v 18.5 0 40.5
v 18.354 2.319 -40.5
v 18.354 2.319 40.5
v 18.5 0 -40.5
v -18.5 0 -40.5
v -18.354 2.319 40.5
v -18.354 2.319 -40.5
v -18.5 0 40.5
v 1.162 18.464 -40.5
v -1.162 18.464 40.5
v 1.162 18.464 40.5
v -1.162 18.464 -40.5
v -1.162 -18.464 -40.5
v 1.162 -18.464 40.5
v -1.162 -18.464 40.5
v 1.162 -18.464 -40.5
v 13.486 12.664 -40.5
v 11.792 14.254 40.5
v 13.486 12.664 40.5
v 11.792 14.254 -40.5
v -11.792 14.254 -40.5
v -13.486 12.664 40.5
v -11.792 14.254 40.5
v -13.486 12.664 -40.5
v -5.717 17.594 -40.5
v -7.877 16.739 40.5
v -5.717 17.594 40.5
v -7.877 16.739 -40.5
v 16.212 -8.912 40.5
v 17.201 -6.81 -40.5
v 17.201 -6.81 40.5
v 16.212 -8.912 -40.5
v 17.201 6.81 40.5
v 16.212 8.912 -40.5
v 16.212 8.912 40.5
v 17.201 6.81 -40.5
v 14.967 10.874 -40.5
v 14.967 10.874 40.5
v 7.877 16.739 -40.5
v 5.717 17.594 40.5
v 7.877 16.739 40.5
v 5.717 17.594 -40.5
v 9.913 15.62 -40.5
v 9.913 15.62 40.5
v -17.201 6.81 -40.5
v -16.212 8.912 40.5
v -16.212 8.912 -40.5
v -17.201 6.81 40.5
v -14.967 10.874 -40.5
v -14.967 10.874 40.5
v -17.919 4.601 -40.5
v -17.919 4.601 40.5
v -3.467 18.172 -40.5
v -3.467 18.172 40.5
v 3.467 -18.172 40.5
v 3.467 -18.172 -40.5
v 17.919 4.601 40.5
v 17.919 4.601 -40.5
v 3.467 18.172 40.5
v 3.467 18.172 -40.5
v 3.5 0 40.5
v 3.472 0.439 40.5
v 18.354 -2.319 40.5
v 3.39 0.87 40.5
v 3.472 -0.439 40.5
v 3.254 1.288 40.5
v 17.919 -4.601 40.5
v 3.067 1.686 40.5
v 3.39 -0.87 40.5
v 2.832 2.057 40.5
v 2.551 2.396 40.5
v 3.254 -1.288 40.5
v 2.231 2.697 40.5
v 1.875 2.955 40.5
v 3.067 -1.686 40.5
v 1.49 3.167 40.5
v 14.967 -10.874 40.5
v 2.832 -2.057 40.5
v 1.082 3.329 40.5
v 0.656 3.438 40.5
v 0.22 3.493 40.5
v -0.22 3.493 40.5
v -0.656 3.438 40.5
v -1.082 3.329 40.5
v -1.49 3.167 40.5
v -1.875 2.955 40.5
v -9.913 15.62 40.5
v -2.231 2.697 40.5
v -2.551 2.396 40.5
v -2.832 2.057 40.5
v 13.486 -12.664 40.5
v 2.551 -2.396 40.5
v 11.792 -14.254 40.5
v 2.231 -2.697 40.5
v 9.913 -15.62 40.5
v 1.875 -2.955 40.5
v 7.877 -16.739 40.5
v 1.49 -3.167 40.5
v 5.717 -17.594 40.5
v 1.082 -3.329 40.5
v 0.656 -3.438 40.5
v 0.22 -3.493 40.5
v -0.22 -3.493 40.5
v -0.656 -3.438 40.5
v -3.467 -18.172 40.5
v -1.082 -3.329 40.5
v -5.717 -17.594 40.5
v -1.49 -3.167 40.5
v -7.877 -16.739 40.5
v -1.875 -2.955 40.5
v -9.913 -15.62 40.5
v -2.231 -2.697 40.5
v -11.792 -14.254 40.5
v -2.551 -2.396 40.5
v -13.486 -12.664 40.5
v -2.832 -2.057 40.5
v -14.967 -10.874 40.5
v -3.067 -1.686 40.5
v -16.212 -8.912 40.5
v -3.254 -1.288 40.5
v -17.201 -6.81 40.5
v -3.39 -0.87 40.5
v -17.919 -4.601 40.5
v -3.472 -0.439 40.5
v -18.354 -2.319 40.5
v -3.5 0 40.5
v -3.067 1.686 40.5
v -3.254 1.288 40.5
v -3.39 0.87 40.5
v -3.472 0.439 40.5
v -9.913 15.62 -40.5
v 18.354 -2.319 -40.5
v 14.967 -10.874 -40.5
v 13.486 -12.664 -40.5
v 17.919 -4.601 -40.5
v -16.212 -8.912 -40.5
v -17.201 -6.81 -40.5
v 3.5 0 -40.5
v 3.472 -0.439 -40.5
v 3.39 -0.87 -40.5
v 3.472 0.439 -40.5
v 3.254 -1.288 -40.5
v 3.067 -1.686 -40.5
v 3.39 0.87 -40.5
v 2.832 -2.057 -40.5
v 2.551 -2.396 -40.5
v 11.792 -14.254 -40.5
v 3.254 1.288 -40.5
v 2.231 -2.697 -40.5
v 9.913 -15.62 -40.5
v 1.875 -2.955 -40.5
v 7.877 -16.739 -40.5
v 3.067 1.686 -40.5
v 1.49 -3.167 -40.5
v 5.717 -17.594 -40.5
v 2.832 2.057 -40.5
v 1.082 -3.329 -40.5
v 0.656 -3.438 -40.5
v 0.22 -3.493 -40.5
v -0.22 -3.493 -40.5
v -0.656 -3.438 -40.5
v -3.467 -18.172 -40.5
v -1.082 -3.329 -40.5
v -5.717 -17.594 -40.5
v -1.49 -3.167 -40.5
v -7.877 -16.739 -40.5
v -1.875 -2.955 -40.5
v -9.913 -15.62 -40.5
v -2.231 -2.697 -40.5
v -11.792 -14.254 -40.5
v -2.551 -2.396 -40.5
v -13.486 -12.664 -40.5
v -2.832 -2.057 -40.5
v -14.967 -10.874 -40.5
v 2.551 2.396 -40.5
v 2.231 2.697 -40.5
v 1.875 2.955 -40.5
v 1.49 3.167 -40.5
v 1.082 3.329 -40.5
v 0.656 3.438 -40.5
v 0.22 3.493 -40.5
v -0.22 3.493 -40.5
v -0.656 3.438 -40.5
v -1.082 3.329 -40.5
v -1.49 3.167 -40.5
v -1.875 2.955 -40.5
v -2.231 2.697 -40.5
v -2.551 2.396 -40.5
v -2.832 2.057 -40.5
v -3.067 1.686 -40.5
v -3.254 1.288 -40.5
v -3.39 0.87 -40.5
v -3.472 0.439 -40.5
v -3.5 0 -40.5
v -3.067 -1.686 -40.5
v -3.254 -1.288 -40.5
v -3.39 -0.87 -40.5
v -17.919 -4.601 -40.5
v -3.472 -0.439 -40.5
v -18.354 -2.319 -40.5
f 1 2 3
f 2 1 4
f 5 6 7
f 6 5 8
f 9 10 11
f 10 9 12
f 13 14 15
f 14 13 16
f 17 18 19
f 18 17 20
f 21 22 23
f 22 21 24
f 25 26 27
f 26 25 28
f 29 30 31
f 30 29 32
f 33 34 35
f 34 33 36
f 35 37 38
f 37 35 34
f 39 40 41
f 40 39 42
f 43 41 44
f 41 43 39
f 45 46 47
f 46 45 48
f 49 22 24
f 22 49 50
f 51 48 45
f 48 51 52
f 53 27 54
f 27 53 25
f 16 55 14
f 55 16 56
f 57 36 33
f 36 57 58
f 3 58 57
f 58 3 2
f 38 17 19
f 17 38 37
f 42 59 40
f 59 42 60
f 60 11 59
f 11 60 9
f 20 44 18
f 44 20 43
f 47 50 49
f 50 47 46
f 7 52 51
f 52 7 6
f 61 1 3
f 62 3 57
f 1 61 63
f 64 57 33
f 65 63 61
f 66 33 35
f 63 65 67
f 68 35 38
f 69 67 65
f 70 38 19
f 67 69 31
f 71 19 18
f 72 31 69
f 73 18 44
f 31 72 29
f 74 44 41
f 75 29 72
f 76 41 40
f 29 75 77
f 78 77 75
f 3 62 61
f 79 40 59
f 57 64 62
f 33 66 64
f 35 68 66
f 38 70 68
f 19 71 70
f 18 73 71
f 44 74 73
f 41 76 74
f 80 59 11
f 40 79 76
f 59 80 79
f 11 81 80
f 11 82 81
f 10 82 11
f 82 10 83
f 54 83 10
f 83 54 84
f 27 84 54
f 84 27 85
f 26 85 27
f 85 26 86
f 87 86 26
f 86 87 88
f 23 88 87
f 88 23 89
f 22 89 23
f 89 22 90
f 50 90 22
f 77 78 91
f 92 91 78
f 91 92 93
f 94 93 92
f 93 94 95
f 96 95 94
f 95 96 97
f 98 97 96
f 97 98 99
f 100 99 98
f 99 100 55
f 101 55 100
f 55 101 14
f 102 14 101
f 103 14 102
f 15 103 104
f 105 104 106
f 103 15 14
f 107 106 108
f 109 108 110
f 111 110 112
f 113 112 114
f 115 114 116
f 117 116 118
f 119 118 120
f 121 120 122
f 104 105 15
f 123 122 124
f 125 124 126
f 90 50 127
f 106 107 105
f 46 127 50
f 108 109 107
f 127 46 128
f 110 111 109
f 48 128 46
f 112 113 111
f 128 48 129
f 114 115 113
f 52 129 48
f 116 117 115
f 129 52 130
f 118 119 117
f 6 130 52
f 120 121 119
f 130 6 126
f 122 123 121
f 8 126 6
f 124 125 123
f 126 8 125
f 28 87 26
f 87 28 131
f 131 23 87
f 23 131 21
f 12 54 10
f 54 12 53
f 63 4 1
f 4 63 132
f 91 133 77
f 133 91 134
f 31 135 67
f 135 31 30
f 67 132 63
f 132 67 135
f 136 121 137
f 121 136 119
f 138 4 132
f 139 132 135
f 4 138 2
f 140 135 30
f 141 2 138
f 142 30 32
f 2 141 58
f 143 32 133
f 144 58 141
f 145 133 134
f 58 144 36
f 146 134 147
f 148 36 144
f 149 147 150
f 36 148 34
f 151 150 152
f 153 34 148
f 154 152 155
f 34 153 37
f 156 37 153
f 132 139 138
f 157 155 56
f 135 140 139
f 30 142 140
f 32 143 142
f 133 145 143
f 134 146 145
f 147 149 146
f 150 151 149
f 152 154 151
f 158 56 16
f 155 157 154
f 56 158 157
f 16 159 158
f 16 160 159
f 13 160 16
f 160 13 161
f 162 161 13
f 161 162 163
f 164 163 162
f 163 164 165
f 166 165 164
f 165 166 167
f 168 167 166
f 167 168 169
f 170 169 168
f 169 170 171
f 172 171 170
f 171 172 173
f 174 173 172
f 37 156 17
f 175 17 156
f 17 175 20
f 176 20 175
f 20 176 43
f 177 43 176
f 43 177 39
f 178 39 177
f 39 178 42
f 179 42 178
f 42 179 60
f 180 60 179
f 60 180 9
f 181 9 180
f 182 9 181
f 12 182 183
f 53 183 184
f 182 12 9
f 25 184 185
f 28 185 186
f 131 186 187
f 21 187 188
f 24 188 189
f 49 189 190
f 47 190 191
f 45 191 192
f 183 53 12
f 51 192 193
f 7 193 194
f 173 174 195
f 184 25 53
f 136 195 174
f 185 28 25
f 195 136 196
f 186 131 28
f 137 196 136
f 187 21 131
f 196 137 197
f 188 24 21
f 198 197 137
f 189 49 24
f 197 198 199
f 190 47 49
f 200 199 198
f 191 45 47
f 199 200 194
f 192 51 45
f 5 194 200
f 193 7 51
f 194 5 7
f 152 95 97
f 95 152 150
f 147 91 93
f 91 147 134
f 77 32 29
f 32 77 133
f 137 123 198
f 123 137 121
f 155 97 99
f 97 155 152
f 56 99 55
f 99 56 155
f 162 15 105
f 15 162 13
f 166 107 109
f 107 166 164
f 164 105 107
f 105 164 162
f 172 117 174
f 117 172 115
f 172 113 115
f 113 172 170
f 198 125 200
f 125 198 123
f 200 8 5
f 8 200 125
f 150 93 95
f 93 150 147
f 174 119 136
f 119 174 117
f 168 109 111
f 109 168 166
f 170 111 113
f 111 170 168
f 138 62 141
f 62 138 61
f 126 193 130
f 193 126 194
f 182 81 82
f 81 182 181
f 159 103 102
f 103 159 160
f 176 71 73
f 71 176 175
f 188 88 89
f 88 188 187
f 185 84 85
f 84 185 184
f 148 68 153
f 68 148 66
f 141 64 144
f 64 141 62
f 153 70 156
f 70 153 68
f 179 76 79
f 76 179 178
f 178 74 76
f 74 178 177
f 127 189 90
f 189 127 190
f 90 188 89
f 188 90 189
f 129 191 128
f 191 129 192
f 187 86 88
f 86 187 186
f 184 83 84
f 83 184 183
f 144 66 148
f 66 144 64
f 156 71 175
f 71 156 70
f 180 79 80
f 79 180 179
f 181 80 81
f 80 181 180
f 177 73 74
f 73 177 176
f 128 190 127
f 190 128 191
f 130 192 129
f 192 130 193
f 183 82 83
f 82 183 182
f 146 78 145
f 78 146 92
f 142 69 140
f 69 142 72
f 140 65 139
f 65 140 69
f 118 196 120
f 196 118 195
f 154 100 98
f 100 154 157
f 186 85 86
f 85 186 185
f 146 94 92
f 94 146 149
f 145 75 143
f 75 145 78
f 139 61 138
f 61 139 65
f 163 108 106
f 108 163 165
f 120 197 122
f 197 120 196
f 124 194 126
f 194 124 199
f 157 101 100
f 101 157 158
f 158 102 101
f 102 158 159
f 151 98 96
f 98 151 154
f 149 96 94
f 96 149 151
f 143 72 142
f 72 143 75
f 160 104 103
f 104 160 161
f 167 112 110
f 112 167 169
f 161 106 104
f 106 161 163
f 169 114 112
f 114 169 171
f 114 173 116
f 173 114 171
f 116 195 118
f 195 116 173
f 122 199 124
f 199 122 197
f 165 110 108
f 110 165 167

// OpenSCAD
$fn = 50;


difference() {
	union() {
		translate(v = [0, 0, -40.5000000000]) {
			cylinder(h = 81, r = 18.5000000000);
		}
	}
	union() {
		translate(v = [0, 0, -100.0000000000]) {
			cylinder(h = 200, r = 3.5000000000);
		}
	}
}
